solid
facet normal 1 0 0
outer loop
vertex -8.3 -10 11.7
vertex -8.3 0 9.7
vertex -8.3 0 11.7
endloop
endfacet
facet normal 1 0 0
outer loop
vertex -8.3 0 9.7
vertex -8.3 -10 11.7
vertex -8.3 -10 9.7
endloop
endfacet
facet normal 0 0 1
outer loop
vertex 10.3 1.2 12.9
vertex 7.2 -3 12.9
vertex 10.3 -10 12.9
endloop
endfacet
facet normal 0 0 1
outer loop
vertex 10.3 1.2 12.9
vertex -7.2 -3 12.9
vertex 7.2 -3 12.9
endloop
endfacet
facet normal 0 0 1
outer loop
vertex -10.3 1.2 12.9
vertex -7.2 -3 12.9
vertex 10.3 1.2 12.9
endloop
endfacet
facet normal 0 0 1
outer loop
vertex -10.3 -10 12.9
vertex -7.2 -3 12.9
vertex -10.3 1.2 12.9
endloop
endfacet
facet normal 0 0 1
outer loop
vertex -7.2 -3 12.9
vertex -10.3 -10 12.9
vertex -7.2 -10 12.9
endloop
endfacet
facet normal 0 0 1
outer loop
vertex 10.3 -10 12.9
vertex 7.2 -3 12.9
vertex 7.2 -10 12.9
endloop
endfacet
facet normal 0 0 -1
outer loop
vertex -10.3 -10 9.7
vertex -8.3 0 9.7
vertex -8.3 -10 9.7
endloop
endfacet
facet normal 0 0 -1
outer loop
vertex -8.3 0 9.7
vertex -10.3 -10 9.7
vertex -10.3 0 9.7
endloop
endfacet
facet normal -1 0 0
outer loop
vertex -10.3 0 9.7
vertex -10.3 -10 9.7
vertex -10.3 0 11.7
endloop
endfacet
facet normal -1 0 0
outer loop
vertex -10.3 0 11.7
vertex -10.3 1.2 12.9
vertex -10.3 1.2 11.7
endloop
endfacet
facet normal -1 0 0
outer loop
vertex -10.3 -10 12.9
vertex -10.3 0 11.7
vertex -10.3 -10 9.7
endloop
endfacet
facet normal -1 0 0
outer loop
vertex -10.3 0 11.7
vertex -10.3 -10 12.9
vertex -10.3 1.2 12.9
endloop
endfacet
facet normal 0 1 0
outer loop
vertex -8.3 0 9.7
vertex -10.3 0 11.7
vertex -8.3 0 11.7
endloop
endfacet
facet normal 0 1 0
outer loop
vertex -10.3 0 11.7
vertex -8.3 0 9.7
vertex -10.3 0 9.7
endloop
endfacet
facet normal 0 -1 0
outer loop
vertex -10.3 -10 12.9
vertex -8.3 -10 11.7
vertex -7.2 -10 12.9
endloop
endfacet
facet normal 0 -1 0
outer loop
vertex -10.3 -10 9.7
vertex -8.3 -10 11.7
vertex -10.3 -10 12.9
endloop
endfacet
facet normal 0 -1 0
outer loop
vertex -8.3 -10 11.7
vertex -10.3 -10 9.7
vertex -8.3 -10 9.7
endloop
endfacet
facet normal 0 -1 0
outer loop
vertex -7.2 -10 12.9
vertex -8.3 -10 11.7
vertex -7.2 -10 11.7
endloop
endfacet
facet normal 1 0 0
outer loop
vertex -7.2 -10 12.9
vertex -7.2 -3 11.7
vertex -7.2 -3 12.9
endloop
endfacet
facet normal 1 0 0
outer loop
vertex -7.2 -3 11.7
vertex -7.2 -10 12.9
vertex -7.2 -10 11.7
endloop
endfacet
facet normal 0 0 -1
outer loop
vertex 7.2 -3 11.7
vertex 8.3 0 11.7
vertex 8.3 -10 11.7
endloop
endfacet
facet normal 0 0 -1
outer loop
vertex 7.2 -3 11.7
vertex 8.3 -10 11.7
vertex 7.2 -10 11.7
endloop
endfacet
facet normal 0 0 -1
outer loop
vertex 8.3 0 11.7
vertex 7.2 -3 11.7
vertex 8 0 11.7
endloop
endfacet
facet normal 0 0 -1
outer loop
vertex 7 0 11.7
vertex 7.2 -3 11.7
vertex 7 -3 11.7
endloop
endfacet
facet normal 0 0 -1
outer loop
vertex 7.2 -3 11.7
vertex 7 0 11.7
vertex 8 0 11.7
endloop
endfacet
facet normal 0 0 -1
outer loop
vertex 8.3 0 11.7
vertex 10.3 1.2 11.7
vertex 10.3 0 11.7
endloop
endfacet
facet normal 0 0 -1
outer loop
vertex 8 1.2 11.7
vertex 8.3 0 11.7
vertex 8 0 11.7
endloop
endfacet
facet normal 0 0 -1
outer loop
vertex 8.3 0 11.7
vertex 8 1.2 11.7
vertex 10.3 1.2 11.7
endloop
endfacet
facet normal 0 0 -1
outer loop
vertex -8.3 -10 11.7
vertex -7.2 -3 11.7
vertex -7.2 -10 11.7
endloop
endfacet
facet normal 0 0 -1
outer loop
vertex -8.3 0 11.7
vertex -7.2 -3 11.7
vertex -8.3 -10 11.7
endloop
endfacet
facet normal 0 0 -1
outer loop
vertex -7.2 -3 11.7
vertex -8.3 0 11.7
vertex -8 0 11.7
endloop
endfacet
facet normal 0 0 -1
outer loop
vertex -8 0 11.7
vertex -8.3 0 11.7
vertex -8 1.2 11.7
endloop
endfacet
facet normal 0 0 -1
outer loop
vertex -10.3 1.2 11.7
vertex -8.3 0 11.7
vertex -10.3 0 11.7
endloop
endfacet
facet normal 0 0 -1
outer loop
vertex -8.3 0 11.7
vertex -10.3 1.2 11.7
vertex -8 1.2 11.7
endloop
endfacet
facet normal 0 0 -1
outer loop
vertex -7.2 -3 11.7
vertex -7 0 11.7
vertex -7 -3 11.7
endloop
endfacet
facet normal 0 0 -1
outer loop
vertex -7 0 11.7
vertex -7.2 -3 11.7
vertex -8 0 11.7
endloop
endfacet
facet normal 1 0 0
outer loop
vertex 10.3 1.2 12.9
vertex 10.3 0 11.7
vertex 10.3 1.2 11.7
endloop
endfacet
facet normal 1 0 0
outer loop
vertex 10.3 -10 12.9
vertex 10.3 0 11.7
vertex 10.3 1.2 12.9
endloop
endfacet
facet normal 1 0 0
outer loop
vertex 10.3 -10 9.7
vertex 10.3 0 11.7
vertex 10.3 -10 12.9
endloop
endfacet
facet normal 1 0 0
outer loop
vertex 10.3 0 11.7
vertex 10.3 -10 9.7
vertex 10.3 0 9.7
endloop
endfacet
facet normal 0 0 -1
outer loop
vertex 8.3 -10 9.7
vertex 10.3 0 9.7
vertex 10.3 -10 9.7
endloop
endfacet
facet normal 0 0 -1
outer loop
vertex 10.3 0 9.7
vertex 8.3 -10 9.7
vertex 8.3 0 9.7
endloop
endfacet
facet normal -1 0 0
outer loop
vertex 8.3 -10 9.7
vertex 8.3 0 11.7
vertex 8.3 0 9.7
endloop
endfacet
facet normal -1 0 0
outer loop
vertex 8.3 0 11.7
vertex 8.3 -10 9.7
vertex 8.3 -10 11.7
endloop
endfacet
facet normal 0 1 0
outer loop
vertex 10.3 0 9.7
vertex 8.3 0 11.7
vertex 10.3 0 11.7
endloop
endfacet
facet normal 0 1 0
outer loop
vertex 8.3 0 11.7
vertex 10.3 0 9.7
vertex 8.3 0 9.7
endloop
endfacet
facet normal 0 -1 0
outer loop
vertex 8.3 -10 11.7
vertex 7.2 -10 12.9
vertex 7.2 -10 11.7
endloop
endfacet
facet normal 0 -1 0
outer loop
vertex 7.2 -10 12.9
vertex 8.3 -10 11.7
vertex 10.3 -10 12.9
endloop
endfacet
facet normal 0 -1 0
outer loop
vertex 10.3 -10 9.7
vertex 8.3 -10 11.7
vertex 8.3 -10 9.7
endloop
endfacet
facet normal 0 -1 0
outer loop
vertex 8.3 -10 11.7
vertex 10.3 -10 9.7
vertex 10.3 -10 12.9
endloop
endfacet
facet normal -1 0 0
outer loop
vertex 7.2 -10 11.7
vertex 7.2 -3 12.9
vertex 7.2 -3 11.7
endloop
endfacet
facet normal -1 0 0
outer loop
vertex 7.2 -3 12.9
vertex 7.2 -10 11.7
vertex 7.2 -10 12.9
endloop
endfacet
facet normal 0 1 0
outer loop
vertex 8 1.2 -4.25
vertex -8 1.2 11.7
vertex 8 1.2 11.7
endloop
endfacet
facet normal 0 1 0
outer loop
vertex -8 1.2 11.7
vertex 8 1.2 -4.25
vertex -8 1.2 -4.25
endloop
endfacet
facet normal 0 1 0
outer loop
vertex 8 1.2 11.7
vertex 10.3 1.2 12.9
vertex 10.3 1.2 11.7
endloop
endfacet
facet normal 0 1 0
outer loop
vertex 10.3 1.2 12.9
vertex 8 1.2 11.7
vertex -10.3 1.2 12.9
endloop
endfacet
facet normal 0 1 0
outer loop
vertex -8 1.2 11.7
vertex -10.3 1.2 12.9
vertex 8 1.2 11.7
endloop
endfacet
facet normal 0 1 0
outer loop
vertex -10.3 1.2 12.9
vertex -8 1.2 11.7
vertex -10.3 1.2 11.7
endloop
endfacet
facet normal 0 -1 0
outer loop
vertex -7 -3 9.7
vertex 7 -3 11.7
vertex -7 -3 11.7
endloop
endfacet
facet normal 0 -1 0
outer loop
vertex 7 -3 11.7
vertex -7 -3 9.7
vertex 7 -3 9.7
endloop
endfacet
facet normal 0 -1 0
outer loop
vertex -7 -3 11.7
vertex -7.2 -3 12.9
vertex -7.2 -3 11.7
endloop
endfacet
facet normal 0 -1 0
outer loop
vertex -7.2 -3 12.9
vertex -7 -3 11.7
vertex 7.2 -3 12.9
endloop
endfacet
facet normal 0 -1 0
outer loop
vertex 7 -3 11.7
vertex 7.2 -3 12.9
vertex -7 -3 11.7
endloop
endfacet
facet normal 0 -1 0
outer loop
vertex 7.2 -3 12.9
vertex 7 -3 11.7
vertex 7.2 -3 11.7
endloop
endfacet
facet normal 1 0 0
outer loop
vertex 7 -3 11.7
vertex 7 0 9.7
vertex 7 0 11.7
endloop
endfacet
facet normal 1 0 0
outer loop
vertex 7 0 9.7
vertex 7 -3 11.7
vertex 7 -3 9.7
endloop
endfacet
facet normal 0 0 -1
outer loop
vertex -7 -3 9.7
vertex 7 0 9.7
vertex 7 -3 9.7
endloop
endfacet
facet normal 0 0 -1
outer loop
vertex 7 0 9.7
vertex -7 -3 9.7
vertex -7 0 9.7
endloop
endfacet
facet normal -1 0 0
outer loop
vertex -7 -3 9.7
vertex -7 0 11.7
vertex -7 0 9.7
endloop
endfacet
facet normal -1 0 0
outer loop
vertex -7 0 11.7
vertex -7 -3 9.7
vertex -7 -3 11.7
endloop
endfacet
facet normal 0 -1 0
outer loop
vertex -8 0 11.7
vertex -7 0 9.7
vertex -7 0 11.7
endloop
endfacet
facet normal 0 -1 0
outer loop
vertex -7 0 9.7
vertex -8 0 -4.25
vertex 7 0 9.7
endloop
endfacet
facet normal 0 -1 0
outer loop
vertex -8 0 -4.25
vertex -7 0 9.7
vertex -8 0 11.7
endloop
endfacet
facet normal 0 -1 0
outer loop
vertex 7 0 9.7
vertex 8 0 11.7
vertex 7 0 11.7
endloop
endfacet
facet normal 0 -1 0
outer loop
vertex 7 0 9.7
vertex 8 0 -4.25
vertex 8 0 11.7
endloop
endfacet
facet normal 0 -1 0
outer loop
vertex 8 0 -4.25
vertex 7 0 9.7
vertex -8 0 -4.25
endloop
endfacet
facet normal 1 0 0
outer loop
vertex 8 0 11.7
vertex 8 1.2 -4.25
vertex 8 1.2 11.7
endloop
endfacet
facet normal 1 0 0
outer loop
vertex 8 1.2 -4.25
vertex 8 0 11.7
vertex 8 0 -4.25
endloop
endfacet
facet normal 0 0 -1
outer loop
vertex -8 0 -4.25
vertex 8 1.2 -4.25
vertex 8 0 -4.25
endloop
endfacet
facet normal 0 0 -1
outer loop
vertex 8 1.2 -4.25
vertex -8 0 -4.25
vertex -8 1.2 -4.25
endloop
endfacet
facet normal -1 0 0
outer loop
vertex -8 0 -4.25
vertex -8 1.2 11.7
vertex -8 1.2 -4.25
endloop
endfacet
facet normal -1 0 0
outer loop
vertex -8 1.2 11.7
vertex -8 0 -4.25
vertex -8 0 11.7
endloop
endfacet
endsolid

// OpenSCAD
// ReachSense six-finger wrap v2. Units: mm. Experimental, physically unverified.
// R: +X lateral, +Y distal (towards fingertip), +Z dorsal.
// A REMOVABLE seating gauge defines Y=0. The wearable deck ends at Y=-3.
// Remove the gauge before testing; no permanent wall blocks the fingertip.
// This defines nominal longitudinal registration, NOT an anatomical 3D point.
$fn = 48;
part = "gauge"; // "holder", "gauge" or "strap"
marker_id = 22;
finger_diameter_mm = 17;
marker_edge_mm = 10;
quiet_zone_mm = 2;
frame_mm = 1;
wall_mm = 2;
stop_wall_mm = 1.2;
strap_width_mm = 6;
strap_length_mm = 90;
gauge_side_clearance_mm = 0.3;
r = finger_diameter_mm/2;
tile = marker_edge_mm + 2*quiet_zone_mm;
deck_width = tile + 2*frame_mm;
length = tile + 2*frame_mm + 8;
deck_front_y = -3;
deck_back_y = deck_front_y-length;
deck_bottom = r + wall_mm - 0.8;
deck_top = deck_bottom + 2;
pocket_depth = 0.2;
marker_y = deck_front_y-(frame_mm+quiet_zone_mm+marker_edge_mm/2);
support_y = [deck_front_y-5,deck_back_y+5];
nail_seat_width = min(8,finger_diameter_mm/2);
nail_seat_z = r-0.6;
assert(finger_diameter_mm >= 12 && finger_diameter_mm <= 26,"Choose a 12–26 mm candidate opening");
assert(marker_edge_mm >= 8 && marker_edge_mm <= 16,"Choose an 8–16 mm black edge");
assert(quiet_zone_mm >= 2,"Keep the full white quiet zone");
assert(marker_id >= 0 && marker_id < 100,"DICT_4X4_100 ID required");
module support(y) {
    translate([0,y,0]) intersection() {
        difference() {
            rotate([90,0,0]) cylinder(r=r+wall_mm,h=6.8,center=true);
            rotate([90,0,0]) cylinder(r=r,h=8.8,center=true);
        }
        translate([-r-wall_mm-1,-4.4,0]) cube([2*(r+wall_mm+1),8.8,r+wall_mm+1]);
    }
    // Flat dorsal bearing at each strap region closes the gap below the deck.
    // Contact with a real nail/dorsal surface and rotational retention are unverified.
    translate([-nail_seat_width/2,y-1.5,nail_seat_z])
        cube([nail_seat_width,3,deck_bottom-nail_seat_z+0.2]);
    for(sign=[-1,1]) translate([sign*(r+wall_mm+2.1),y,1.5]) difference() {
        cube([6,8.8,3],center=true);
        cube([2.6,6.4,5],center=true);
    }
}
module deck() {
    // Rounded corners retain a straight central gauge abutment at Y=-3.
    hull() for(x=[-deck_width/2+1,deck_width/2-1])
        for(y=[deck_back_y+1,deck_front_y-1])
            translate([x,y,deck_bottom]) cylinder(r=1,h=2);
}
module holder() {
    difference() {
        union() { for(y=support_y) support(y); deck(); }
        translate([-tile/2-0.1,marker_y-tile/2-0.1,deck_top-pocket_depth])
            cube([tile+0.2,tile+0.2,pocket_depth+1]);
    }
}
module gauge() {
    // Hand-held drop-on gauge, NOT a validated snap fit. Hold its proximal
    // abutment against the deck's front face at Y=-3 while gently seating the finger.
    // Feet sit on the bare side frame; the ArUco pocket remains clear.
    union() {
        translate([-deck_width/2-2.3,deck_front_y,deck_top])
            cube([deck_width+4.6,-deck_front_y+stop_wall_mm,1.2]);
        // Deck contact Y=-3; fingertip contact Y=0. Remove upwards after tightening.
        translate([-deck_width/2+1,deck_front_y,deck_bottom])
            cube([deck_width-2,-deck_front_y,deck_top-deck_bottom+0.5]);
        translate([-deck_width/2,0,-r/2])
            cube([deck_width,stop_wall_mm,deck_top+1.2+r/2]);
        for(sign=[-1,1]) {
            x=sign>0 ? deck_width/2+gauge_side_clearance_mm : -deck_width/2-gauge_side_clearance_mm-2;
            translate([x,-10,deck_bottom]) cube([2,10,deck_top-deck_bottom+1.2]);
            foot_x=sign>0 ? deck_width/2-0.8 : -deck_width/2-2.3;
            translate([foot_x,-10,deck_top]) cube([3.1,10,1.2]);
        }
    }
}
module strap() {
    // TPU-only ladder strip. Ends require a return loop/fastener or hook-and-loop.
    union() {
        translate([-strap_length_mm/2,-strap_width_mm/2,0]) cube([strap_length_mm,strap_width_mm,0.8]);
        for(x=[-strap_length_mm/2+3:4:strap_length_mm/2-3])
            translate([x-0.7,-strap_width_mm/2,0.8]) cube([1.4,strap_width_mm,0.5]);
    }
}
if(part=="strap") strap(); else if(part=="gauge") gauge(); else holder();
echo(reference_plane_y_mm=0,deck_front_y_mm=deck_front_y);
echo(marker_center_R_mm=[0,marker_y,deck_top-pocket_depth+0.15]);
echo(marker_center_to_reference_plane_mm=-marker_y);
